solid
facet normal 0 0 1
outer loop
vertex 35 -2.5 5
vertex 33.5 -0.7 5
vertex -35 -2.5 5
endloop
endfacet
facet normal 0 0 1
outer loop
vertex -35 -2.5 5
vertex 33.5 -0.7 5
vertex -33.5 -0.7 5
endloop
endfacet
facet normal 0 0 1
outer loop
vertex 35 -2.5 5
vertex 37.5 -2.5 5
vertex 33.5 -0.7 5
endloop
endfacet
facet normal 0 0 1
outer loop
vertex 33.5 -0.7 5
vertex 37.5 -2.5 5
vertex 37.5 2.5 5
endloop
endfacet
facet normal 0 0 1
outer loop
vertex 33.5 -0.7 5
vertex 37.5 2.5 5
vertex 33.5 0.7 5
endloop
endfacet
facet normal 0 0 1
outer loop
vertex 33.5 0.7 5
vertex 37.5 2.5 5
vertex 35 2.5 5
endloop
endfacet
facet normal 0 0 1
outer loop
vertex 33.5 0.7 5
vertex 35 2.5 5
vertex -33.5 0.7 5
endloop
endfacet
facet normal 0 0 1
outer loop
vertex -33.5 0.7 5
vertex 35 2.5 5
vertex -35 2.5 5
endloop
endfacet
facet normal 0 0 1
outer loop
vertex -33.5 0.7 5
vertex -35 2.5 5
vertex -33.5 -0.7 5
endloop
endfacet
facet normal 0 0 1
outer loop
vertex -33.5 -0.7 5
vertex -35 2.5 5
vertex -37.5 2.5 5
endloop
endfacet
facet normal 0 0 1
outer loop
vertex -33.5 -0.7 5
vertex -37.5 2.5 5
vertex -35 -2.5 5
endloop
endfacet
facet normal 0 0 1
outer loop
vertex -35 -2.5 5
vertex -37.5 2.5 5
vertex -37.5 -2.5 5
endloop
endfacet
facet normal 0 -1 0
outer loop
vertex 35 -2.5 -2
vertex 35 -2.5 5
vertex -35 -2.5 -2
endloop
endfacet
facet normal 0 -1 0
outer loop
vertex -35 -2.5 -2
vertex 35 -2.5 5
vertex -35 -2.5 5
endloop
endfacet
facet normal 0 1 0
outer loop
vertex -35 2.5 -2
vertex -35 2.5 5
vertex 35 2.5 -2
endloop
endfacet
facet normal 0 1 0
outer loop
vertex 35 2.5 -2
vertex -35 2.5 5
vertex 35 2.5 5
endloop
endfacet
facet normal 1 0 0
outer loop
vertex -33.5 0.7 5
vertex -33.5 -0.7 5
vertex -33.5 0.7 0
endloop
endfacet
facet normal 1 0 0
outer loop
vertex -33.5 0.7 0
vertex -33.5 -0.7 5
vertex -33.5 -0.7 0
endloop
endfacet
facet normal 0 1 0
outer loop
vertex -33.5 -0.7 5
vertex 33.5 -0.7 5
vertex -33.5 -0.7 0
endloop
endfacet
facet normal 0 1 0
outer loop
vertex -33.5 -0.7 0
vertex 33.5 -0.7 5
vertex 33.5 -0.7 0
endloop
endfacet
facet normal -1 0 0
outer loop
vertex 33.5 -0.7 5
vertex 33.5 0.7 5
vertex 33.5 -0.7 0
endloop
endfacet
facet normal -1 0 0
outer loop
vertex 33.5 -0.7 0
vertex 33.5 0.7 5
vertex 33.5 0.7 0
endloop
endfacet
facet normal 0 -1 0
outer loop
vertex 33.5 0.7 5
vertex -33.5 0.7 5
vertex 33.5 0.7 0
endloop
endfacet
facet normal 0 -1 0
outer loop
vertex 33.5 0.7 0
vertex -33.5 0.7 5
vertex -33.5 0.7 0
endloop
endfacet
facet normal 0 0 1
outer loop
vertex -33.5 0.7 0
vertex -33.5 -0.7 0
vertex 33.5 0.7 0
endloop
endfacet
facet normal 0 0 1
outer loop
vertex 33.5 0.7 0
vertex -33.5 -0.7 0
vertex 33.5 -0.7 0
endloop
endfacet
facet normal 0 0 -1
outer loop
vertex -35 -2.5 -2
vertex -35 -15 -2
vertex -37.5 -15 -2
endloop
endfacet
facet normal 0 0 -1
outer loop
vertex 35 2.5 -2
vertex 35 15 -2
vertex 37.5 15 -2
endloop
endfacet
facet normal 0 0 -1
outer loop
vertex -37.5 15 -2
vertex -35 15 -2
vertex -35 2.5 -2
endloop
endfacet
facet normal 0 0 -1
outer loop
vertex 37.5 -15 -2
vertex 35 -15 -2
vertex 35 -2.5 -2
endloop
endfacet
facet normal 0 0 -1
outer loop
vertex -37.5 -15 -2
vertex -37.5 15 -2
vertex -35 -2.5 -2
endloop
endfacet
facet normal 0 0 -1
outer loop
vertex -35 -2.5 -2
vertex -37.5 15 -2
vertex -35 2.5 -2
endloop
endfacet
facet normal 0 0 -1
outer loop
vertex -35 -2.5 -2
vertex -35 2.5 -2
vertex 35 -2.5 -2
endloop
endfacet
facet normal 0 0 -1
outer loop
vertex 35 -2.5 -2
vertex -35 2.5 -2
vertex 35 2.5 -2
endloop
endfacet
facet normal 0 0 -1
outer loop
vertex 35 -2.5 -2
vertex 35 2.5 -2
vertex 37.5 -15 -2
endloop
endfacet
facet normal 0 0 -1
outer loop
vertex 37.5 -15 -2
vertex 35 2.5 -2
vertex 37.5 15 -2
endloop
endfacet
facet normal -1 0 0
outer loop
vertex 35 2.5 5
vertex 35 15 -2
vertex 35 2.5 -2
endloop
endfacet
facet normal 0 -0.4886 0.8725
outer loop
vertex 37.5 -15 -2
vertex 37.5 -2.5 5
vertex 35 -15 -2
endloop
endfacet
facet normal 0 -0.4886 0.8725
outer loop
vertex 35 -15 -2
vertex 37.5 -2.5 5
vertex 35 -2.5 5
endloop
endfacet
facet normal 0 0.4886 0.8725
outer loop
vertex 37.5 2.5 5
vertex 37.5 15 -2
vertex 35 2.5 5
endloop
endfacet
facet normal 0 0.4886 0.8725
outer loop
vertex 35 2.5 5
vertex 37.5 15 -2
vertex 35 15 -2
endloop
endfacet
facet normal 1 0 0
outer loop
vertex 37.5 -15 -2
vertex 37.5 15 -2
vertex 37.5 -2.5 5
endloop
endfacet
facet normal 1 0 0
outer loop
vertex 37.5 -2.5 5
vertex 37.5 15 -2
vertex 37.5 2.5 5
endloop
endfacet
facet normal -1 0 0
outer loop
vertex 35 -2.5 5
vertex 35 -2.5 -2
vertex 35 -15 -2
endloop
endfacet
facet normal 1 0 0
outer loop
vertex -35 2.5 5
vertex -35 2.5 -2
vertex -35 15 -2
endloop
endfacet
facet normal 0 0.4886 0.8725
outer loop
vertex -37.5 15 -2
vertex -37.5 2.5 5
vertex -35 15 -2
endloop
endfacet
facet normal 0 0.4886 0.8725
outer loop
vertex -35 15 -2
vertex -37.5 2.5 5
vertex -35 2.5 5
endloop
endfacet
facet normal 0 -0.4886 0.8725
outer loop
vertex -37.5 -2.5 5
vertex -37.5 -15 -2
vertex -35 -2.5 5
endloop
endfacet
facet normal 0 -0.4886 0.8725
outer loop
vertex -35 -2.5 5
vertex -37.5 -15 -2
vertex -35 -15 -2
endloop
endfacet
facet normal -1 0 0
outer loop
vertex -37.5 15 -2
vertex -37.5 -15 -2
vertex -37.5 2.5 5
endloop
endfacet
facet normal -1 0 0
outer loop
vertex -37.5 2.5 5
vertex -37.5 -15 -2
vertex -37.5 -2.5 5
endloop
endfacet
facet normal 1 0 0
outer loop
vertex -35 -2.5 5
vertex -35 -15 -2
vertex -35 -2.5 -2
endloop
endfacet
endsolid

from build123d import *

# Parameters (mm, degrees)
SKETCH1_W           = 70
SKETCH1_H           = 5
SKETCH1_W_2         = 67
SKETCH1_H_2         = 1.4
BOSS_EXTRUDE1_DEPTH = 5
SKETCH2_W           = 70
SKETCH2_H           = 5
BOSS_EXTRUDE2_DEPTH = 2
BOSS_EXTRUDE3_DEPTH = 2.5
BOSS_EXTRUDE4_DEPTH = 2.5


with BuildPart() as part:
    # Sketch1 → Boss-Extrude1 (new body)
    with BuildSketch(Plane.XY):
        Rectangle(SKETCH1_W, SKETCH1_H)
        Rectangle(SKETCH1_W_2, SKETCH1_H_2, mode=Mode.SUBTRACT)
    extrude(amount=BOSS_EXTRUDE1_DEPTH)

    # Sketch2 → Boss-Extrude2 (add)
    with BuildSketch(Plane(origin=(0, 0, 0), x_dir=(-1, 0, 0), z_dir=(0, 0, -1))):
        Rectangle(SKETCH2_W, SKETCH2_H)
    extrude(amount=BOSS_EXTRUDE2_DEPTH)

    # Sketch3 → Boss-Extrude3 (add)
    with BuildSketch(Plane(origin=(35, 0, 0), x_dir=(0, 0, -1), z_dir=(1, 0, 0))):
        Polygon((-5, 2.5), (2, 15), (2, -15), (-5, -2.5), align=None)
    extrude(amount=BOSS_EXTRUDE3_DEPTH)

    # Sketch4 → Boss-Extrude4 (add)
    with BuildSketch(Plane.ZY.offset(35)):
        Polygon((5, 2.5), (-2, 15), (-2, -15), (5, -2.5), align=None)
    extrude(amount=BOSS_EXTRUDE4_DEPTH)


solid = part.part
